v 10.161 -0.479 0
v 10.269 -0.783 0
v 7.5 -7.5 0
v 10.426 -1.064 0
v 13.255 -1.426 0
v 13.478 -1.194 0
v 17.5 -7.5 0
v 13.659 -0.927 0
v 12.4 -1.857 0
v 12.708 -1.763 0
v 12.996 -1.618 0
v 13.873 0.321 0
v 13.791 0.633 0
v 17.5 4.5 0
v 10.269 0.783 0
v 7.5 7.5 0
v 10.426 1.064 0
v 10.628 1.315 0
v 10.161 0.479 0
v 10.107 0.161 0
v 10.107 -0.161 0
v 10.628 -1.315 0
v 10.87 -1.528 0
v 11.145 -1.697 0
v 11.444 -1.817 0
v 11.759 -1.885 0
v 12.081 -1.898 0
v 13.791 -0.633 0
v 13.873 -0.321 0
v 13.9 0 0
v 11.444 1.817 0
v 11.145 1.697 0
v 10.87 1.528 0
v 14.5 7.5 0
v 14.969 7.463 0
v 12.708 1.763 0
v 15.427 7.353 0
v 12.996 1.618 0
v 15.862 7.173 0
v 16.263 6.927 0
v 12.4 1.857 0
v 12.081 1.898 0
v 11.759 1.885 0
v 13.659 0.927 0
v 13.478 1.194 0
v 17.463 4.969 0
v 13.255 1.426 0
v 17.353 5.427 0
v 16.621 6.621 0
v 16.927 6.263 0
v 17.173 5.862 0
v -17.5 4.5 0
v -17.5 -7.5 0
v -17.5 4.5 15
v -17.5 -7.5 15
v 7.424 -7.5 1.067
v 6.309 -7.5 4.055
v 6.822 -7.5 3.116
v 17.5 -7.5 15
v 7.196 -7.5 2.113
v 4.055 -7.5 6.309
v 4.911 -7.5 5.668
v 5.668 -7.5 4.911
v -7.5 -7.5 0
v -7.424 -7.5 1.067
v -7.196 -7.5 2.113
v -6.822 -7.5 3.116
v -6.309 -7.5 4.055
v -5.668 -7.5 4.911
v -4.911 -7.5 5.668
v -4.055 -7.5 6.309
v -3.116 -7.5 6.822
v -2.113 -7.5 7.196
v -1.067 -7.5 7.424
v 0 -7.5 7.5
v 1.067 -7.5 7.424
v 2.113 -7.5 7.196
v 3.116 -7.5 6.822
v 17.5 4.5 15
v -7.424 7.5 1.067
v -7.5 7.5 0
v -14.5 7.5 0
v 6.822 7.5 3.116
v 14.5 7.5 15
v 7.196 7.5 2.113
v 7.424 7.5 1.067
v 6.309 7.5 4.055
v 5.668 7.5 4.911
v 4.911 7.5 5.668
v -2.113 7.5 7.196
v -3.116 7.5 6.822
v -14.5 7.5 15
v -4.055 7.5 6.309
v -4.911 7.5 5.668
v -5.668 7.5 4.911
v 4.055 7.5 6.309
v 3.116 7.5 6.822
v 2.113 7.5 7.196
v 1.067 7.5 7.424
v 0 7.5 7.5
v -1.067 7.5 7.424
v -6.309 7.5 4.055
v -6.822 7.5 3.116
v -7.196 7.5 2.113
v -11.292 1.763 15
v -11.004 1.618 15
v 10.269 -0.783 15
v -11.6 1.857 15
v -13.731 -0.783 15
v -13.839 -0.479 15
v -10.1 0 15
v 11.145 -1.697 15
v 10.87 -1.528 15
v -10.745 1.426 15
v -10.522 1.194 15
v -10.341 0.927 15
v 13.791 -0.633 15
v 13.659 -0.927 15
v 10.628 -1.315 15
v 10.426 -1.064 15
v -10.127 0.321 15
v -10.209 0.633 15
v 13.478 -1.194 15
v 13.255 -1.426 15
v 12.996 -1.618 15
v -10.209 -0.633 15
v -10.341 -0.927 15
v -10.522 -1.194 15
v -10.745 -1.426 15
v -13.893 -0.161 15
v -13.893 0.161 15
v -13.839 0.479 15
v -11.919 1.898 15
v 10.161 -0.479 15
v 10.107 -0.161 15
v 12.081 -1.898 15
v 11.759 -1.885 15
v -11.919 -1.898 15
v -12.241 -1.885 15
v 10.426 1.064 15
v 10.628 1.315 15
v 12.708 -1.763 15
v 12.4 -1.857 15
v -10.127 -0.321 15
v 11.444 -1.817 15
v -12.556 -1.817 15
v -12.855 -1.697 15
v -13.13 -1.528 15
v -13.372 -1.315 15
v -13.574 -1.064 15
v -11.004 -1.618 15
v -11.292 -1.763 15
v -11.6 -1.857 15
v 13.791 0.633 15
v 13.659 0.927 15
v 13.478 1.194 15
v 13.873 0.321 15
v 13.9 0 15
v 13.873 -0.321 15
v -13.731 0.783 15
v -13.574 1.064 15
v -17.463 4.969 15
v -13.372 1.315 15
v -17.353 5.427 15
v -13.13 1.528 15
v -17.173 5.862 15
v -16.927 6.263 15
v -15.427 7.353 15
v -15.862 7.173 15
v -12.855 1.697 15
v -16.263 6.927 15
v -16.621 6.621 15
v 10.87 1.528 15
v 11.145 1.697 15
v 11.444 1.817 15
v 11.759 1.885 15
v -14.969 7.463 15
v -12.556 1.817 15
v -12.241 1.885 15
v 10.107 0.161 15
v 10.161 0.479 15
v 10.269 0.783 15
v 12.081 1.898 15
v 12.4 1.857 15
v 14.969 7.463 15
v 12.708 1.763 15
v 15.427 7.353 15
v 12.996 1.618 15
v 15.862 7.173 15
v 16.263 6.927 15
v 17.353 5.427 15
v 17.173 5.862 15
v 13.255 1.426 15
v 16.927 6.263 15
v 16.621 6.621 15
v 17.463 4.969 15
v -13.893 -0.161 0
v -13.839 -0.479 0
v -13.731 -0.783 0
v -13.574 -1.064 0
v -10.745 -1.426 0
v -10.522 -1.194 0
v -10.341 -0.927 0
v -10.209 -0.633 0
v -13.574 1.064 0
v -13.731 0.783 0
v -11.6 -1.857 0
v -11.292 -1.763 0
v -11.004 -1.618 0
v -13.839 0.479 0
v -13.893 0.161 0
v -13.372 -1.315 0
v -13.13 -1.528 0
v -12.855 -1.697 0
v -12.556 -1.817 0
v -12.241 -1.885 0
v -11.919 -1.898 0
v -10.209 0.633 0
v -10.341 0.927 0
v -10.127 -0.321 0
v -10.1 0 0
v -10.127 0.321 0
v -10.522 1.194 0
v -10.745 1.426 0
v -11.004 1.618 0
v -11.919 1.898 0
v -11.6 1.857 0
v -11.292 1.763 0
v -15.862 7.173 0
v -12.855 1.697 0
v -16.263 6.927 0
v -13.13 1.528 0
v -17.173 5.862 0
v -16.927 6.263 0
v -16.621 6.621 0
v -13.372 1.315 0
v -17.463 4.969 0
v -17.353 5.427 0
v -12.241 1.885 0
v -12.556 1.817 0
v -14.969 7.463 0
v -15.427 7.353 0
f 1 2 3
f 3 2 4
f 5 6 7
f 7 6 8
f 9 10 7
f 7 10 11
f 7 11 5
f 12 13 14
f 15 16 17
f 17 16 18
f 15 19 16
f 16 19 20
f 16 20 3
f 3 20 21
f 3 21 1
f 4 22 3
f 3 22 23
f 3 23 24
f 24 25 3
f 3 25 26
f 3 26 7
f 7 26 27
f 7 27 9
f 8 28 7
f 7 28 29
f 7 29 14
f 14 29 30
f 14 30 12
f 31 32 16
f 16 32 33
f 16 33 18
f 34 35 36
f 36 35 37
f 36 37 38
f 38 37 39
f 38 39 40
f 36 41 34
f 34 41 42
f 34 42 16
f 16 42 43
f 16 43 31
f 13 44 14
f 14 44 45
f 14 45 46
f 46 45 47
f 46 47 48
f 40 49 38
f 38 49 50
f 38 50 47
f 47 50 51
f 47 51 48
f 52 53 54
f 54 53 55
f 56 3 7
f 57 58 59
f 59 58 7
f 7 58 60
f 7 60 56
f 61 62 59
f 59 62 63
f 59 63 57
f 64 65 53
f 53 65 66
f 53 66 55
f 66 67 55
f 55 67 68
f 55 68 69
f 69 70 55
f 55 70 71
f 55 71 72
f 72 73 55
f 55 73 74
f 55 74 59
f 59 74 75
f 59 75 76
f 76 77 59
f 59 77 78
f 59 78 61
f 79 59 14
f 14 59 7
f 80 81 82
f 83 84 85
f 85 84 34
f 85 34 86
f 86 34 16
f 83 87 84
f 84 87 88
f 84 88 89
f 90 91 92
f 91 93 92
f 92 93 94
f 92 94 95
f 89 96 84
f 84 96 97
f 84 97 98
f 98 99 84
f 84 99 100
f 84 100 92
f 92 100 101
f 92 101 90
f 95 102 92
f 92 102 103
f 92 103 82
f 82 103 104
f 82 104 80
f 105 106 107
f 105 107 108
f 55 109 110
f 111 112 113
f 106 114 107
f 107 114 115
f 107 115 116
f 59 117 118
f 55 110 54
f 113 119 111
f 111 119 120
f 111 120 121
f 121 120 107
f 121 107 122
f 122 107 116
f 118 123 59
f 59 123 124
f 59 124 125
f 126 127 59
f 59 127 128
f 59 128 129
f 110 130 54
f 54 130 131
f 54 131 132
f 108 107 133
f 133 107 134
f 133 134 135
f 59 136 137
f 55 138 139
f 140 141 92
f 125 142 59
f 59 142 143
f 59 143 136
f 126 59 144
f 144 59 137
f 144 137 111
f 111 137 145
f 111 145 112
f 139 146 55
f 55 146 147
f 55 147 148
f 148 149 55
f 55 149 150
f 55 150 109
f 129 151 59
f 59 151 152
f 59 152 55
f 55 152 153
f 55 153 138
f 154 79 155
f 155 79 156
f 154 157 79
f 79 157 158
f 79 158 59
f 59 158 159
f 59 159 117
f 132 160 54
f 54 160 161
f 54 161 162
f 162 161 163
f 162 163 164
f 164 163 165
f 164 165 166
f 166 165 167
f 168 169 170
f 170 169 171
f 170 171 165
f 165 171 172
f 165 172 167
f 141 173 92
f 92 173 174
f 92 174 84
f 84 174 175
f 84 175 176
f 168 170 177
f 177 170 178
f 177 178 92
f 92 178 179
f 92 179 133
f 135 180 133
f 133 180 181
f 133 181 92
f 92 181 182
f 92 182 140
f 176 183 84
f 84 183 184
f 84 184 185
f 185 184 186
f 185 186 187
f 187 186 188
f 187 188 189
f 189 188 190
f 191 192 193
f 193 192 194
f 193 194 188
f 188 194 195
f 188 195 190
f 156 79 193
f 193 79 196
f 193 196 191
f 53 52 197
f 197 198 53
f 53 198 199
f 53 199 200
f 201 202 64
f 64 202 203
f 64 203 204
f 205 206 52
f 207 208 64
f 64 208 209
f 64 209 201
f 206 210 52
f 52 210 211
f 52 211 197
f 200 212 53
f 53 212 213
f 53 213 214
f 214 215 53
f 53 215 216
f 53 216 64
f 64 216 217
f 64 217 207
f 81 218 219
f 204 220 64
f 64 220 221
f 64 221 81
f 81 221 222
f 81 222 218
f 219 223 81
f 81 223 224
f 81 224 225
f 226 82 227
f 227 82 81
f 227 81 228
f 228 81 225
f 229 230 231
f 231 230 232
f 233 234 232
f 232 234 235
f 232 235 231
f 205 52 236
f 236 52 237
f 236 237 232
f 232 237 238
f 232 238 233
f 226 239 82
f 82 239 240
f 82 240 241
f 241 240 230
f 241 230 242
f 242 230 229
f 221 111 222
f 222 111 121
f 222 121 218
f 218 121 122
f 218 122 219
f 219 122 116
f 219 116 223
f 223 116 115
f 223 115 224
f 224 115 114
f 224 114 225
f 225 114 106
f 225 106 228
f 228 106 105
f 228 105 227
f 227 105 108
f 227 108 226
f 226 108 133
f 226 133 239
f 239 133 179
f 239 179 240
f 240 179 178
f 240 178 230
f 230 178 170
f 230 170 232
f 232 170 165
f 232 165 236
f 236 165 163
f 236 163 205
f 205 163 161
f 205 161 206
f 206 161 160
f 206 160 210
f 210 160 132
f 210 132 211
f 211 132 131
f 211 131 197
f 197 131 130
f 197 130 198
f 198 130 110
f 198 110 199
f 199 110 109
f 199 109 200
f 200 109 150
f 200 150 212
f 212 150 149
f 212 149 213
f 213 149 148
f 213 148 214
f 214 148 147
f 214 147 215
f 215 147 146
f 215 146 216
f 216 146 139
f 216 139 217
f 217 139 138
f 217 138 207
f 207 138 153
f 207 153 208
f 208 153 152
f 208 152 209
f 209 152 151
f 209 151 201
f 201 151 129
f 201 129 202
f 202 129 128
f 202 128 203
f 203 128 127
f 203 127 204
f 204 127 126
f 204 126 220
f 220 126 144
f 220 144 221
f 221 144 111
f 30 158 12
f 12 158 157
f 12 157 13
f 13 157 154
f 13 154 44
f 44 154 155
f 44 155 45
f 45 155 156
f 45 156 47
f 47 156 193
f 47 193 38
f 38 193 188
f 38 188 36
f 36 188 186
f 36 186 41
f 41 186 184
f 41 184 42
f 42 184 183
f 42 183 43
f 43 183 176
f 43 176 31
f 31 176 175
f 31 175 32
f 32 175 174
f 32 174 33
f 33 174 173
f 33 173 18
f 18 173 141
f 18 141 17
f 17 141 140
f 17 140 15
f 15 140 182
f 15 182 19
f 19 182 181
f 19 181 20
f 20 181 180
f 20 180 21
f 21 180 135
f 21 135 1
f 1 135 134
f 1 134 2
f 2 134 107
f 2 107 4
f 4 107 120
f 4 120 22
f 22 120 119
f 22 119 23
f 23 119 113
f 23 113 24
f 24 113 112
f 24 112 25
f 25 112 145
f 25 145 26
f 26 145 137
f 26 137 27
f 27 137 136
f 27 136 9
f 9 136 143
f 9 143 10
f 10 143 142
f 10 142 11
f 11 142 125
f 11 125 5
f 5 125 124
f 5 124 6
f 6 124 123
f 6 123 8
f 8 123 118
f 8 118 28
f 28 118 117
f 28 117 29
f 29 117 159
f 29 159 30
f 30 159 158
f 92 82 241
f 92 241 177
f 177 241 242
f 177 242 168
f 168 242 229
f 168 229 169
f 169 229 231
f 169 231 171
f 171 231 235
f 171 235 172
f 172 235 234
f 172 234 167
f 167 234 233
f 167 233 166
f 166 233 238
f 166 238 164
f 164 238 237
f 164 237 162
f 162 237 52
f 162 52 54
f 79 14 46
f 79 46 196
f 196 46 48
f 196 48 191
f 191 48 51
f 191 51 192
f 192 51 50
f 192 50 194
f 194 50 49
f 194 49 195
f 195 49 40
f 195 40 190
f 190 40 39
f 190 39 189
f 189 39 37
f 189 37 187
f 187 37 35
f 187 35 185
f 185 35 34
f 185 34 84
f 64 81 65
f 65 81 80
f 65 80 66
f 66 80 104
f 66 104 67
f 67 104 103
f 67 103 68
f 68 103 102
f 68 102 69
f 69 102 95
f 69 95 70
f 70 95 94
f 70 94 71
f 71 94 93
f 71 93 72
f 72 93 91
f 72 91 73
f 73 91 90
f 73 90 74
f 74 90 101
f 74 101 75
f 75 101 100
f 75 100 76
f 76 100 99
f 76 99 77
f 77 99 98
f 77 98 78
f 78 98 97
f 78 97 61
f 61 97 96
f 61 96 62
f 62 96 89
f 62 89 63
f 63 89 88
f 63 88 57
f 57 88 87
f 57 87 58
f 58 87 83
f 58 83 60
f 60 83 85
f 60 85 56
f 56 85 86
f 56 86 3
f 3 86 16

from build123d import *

# Parameters (mm, degrees)
SKETCH1_W           = 35
SKETCH1_H           = 15
BOSS_EXTRUDE1_DEPTH = 15
SKETCH2_R           = 1.9
CUT_EXTRUDE1_DEPTH  = 15
FILLET1_R           = 3
SKETCH3_R           = 7.5
CUT_EXTRUDE2_DEPTH  = 16


with BuildPart() as part:
    # Sketch1 → Boss-Extrude1 (new body)
    with BuildSketch(Plane.XY):
        Rectangle(SKETCH1_W, SKETCH1_H)
    extrude(amount=BOSS_EXTRUDE1_DEPTH)

    # Sketch2 → Cut-Extrude1 (cut)
    with BuildSketch(Plane.XY.offset(15)):
        with Locations((-12, 0)):
            Circle(SKETCH2_R)
        with Locations((12, 0)):
            Circle(SKETCH2_R)
    extrude(amount=-CUT_EXTRUDE1_DEPTH, mode=Mode.SUBTRACT)

    # Fillet1
    fillet1_edges = [part.edges().sort_by_distance(p)[0] for p in [
        (-17.5, 7.5, 7.5),
        (17.5, 7.5, 7.5),
    ]]
    fillet(fillet1_edges, radius=FILLET1_R)

    # Sketch3 → Cut-Extrude2 (cut, through all)
    with BuildSketch(Plane(origin=(0, 7.5, 0), x_dir=(1, 0, 0), z_dir=(0, 1, 0))):
        Circle(SKETCH3_R)
    extrude(amount=-CUT_EXTRUDE2_DEPTH, mode=Mode.SUBTRACT)


solid = part.part
